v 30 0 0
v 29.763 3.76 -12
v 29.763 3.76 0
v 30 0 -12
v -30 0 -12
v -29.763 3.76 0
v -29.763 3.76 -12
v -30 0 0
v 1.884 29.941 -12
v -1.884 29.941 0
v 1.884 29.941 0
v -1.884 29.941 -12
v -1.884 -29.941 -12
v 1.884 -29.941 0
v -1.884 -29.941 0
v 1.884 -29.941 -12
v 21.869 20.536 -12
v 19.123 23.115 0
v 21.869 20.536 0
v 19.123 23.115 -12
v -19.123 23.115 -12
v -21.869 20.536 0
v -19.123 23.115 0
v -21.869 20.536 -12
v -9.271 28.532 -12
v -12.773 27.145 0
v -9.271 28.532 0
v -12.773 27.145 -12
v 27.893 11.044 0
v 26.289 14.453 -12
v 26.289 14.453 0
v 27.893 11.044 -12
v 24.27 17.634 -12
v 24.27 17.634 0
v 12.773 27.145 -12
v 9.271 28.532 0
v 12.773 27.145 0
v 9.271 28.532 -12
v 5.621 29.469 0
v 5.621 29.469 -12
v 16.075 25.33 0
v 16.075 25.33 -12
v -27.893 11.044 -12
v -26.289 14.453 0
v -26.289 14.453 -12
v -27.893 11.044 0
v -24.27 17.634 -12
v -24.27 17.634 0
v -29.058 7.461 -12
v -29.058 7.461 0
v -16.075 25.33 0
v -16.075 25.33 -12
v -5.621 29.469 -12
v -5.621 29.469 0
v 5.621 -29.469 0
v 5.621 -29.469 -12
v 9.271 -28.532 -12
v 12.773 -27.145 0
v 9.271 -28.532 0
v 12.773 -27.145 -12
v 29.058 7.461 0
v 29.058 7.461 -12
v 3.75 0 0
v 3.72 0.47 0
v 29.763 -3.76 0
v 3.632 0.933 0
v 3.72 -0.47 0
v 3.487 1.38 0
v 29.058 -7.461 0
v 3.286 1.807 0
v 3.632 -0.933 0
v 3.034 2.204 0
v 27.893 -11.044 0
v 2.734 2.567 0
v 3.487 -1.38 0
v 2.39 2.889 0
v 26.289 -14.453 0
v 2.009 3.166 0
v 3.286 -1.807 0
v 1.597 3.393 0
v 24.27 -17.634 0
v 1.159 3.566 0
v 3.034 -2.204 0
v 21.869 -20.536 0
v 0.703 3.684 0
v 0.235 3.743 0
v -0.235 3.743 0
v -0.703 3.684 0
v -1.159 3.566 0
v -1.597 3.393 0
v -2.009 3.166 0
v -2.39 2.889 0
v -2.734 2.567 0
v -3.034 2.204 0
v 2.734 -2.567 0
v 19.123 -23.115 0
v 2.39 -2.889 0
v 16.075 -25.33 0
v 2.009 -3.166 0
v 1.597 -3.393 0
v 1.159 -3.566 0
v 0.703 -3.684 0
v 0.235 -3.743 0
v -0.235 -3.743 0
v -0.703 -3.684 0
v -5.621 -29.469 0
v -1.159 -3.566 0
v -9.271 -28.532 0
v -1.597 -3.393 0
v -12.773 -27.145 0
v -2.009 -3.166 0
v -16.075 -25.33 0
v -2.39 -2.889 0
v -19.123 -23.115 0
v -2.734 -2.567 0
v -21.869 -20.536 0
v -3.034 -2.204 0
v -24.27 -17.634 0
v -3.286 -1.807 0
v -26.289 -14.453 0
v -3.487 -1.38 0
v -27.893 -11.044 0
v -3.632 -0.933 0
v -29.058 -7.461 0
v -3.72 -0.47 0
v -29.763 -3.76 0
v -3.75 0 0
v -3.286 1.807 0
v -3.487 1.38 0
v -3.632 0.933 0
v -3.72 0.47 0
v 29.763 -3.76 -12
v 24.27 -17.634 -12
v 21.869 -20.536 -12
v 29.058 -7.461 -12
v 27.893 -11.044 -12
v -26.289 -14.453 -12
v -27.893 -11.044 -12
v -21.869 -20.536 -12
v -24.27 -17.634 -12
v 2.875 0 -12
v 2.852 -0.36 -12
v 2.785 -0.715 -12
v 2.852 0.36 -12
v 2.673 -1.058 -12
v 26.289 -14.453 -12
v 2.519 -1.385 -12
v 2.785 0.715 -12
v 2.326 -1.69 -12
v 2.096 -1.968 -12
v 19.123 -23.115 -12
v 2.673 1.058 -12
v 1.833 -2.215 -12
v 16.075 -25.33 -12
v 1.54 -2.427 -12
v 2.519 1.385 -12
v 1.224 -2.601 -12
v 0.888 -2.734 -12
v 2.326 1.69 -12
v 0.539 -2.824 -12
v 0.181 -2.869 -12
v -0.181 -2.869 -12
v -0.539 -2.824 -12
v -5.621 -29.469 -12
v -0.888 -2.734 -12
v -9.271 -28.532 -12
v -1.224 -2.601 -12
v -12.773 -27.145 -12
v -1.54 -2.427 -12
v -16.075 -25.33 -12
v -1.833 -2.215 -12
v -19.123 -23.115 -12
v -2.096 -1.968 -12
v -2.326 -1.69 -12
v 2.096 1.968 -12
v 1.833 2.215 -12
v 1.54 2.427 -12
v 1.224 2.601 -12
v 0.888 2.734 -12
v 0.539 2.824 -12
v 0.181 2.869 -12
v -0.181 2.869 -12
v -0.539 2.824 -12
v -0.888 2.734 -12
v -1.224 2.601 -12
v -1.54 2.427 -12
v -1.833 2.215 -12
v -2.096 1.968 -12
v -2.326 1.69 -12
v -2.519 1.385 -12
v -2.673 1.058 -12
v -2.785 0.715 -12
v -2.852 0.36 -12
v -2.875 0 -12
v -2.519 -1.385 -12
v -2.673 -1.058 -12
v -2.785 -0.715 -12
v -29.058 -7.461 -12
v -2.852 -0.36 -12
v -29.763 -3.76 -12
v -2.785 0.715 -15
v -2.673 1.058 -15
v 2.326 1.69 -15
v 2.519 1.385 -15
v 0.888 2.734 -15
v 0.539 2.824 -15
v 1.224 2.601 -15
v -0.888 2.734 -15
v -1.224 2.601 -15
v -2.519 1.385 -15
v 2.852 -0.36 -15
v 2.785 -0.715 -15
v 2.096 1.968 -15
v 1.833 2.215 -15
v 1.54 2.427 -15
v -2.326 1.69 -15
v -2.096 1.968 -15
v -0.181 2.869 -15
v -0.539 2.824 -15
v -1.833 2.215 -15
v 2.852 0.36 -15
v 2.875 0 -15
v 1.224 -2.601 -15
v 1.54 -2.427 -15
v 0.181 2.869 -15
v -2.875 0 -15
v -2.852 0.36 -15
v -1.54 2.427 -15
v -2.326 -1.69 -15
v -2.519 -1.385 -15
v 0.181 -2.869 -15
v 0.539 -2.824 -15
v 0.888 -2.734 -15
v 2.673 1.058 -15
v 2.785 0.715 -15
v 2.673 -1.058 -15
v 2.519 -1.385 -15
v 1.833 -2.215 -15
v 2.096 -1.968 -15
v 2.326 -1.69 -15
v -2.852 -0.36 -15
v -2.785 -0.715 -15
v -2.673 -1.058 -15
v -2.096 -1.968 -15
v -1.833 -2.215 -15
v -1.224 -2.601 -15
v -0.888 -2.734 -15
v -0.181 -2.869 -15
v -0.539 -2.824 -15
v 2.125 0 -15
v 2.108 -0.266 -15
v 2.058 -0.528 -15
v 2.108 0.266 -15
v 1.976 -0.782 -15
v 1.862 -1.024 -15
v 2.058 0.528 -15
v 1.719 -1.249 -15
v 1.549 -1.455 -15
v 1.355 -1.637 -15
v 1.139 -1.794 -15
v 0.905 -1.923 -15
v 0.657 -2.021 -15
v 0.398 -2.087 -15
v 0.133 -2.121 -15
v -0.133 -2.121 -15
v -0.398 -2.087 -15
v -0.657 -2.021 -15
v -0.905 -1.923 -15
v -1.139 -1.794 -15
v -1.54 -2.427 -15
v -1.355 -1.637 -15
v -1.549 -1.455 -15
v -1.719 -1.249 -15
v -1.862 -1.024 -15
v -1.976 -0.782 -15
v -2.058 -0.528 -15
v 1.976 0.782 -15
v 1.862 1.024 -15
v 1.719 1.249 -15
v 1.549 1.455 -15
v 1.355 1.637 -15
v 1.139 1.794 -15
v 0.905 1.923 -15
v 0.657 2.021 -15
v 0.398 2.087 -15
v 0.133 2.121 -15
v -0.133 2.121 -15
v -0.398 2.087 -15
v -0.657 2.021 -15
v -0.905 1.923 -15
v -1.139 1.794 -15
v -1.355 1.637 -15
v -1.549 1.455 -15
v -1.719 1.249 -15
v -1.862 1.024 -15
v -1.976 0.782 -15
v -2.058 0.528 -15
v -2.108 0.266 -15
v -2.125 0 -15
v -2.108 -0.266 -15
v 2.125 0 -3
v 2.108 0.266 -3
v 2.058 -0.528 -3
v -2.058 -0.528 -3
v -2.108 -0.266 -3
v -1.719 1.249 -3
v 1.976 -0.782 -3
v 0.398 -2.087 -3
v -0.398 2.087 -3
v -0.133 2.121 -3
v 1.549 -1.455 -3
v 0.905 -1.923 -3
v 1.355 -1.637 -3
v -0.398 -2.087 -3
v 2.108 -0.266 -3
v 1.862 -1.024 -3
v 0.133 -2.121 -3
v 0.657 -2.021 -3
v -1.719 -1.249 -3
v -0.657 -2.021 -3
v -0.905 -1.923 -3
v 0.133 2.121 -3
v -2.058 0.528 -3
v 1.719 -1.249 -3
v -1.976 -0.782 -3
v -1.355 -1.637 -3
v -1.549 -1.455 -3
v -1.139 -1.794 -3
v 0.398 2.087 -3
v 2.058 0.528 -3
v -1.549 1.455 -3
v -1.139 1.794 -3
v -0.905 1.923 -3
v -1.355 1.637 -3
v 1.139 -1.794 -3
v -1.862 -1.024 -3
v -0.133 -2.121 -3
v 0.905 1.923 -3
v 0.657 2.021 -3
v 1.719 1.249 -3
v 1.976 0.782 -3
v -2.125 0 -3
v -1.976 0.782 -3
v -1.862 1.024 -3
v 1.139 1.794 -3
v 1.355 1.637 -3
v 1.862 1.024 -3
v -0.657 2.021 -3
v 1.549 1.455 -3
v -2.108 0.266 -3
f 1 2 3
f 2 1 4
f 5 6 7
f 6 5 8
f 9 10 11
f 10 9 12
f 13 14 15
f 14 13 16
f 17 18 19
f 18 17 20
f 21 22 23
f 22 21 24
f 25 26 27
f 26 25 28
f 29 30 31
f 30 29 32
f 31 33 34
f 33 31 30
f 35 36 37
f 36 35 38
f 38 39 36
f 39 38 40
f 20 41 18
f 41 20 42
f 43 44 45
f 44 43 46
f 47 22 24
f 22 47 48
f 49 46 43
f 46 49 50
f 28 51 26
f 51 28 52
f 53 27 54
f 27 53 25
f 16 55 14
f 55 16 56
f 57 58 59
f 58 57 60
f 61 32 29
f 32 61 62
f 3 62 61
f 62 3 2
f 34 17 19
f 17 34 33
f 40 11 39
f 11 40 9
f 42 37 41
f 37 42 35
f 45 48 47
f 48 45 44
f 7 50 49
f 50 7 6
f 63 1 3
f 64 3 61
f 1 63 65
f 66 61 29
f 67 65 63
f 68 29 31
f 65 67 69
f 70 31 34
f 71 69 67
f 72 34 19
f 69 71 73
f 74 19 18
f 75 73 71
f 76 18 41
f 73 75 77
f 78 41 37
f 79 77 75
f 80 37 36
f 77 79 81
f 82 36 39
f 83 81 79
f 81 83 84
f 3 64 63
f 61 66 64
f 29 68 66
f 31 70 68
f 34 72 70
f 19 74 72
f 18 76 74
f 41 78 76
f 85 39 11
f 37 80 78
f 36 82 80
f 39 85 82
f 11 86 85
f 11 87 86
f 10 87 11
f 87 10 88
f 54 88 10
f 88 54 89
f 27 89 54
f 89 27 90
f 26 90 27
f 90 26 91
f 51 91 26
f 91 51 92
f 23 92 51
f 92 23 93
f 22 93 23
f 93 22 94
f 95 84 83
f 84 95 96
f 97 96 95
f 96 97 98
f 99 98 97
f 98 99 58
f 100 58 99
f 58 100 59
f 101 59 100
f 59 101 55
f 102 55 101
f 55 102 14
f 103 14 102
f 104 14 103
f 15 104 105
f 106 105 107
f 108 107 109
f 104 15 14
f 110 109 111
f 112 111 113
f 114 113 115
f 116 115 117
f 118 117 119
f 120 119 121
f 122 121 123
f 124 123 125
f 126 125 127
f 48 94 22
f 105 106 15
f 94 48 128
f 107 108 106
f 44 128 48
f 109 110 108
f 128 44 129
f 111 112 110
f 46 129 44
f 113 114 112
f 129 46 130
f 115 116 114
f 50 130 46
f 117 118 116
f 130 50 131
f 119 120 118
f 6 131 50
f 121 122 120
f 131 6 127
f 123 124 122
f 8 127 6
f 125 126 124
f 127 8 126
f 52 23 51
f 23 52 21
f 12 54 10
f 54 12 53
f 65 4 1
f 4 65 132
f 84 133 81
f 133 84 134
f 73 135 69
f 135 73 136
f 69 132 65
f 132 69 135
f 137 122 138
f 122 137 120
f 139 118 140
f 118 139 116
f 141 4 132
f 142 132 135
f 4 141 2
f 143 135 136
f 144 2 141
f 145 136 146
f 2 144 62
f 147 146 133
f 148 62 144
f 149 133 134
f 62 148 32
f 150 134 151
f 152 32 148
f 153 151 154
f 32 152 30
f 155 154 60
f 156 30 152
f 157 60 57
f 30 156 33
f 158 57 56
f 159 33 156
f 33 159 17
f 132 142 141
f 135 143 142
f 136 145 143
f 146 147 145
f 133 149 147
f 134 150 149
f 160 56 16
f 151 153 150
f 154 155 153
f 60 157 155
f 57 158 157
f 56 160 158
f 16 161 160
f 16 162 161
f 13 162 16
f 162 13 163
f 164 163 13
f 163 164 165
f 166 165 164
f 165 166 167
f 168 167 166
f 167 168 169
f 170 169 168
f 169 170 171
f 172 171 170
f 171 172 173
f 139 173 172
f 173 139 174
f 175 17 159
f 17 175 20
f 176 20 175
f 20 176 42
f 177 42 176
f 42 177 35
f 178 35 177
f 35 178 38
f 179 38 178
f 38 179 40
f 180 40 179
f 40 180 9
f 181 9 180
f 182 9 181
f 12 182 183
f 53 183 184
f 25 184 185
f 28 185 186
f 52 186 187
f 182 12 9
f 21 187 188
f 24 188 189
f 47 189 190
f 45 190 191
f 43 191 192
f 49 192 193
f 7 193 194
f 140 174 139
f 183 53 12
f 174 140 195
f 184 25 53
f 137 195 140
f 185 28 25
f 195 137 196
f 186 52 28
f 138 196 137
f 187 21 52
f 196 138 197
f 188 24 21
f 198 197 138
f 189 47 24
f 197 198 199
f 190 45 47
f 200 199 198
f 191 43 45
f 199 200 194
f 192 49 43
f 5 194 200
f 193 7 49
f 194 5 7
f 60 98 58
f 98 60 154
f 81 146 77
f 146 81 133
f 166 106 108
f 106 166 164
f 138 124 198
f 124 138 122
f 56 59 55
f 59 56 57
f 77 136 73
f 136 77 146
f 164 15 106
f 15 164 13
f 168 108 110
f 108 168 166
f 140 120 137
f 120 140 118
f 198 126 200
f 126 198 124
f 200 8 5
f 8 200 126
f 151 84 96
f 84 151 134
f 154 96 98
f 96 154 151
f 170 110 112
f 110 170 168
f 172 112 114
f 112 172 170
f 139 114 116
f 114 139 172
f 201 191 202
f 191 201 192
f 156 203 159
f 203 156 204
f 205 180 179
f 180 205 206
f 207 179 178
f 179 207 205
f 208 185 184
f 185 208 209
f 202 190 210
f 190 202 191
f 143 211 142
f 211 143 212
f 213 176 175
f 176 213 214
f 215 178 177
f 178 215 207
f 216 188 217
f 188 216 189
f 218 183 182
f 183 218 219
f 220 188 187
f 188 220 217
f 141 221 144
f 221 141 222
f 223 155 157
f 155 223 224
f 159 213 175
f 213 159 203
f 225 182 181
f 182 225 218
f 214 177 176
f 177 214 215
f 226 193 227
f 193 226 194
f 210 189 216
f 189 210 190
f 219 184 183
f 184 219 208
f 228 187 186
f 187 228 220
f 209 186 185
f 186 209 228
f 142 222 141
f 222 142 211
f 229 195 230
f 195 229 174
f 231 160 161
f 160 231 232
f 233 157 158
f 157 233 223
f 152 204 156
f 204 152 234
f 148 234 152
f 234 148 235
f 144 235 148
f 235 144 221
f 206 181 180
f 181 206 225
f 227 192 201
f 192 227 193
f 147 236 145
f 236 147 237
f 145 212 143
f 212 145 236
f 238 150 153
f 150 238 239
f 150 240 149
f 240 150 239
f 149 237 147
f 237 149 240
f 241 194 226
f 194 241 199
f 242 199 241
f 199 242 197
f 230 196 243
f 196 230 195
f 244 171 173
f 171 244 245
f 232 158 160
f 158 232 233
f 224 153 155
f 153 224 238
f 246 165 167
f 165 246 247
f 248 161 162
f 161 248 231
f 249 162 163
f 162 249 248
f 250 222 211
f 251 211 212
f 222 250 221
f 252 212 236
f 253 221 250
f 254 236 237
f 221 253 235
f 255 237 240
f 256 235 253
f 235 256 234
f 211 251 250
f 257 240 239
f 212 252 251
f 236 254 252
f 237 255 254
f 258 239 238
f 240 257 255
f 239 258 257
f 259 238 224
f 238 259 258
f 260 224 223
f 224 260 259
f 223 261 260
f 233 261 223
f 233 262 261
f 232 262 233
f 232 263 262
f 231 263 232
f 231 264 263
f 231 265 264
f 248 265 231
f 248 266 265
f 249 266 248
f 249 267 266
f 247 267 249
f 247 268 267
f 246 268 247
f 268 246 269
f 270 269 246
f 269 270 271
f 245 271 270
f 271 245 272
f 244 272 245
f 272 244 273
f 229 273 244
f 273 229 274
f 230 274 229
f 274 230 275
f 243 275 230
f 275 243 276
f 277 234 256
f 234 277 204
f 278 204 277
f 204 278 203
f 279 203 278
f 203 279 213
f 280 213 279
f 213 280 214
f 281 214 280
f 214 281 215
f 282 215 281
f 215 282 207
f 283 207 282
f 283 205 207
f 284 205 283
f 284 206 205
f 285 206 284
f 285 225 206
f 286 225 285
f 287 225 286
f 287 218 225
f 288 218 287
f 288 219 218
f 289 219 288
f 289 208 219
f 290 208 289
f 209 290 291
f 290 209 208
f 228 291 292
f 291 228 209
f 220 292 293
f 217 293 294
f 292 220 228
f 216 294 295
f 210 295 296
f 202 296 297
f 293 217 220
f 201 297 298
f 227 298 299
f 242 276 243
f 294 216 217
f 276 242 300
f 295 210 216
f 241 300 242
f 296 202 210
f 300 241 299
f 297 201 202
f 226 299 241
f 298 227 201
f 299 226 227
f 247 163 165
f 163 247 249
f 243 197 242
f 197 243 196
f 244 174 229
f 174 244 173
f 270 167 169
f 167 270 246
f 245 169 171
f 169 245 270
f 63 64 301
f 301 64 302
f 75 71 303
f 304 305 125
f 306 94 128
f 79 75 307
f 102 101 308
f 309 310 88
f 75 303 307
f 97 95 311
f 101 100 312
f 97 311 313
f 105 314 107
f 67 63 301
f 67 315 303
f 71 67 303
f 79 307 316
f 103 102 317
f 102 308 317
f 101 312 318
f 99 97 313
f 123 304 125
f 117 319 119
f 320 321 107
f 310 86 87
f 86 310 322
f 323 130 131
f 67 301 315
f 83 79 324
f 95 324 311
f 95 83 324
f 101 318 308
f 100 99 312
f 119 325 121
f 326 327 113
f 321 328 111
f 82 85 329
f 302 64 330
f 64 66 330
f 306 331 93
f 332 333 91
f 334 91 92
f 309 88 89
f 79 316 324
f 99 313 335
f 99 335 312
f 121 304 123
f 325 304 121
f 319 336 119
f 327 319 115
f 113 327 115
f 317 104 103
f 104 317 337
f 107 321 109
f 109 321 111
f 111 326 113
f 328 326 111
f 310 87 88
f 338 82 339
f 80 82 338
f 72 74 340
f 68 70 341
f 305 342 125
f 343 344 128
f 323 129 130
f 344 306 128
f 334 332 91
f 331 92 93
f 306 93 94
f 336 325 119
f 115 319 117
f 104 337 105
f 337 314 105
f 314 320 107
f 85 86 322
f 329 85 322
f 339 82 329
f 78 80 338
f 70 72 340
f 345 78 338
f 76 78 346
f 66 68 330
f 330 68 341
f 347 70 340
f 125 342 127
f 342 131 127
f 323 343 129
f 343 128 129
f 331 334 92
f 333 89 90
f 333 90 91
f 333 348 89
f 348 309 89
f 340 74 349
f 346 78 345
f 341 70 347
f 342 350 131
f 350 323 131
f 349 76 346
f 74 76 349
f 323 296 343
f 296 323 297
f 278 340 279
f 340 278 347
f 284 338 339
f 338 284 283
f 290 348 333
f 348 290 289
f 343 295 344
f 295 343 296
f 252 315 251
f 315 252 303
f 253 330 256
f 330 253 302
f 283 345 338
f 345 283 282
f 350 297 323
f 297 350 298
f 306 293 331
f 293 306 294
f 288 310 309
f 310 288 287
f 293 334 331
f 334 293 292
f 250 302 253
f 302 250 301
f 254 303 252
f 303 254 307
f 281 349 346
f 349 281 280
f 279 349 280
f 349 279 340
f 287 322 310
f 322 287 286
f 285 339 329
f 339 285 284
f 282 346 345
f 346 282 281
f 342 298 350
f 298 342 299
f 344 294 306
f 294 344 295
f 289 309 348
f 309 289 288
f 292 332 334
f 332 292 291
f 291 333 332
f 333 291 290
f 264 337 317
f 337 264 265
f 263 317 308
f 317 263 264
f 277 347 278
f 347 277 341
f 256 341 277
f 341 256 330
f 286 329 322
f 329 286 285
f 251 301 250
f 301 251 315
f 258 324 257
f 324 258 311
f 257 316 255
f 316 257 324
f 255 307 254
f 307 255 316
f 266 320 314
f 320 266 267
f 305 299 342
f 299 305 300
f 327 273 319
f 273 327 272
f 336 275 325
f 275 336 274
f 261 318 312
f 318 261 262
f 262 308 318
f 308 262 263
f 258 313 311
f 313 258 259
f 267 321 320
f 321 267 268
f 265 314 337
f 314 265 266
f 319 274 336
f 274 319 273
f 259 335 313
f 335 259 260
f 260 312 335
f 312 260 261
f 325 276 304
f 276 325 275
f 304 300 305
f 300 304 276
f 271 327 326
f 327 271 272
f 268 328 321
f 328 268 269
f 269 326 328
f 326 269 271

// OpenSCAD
$fn = 50;


difference() {
	union() {
		translate(v = [0, 0, -12.0000000000]) {
			cylinder(h = 12, r = 30.0000000000);
		}
		translate(v = [0, 0, -15.0000000000]) {
			cylinder(h = 15, r = 2.8750000000);
		}
	}
	union() {
		translate(v = [0, 0, 0]) {
			rotate(a = [0, 0, 0]) {
				difference() {
					union() {
						translate(v = [0, 0, -15.0000000000]) {
							cylinder(h = 15, r = 2.0000000000);
						}
						translate(v = [0, 0, -3]) {
							cylinder(h = 3, r1 = 2.1250000000, r2 = 3.7500000000);
						}
						translate(v = [0, 0, -15.0000000000]) {
							cylinder(h = 15, r = 2.1250000000);
						}
						translate(v = [0, 0, -15.0000000000]) {
							cylinder(h = 15, r = 2.0000000000);
						}
					}
					union();
				}
			}
		}
	}
}
